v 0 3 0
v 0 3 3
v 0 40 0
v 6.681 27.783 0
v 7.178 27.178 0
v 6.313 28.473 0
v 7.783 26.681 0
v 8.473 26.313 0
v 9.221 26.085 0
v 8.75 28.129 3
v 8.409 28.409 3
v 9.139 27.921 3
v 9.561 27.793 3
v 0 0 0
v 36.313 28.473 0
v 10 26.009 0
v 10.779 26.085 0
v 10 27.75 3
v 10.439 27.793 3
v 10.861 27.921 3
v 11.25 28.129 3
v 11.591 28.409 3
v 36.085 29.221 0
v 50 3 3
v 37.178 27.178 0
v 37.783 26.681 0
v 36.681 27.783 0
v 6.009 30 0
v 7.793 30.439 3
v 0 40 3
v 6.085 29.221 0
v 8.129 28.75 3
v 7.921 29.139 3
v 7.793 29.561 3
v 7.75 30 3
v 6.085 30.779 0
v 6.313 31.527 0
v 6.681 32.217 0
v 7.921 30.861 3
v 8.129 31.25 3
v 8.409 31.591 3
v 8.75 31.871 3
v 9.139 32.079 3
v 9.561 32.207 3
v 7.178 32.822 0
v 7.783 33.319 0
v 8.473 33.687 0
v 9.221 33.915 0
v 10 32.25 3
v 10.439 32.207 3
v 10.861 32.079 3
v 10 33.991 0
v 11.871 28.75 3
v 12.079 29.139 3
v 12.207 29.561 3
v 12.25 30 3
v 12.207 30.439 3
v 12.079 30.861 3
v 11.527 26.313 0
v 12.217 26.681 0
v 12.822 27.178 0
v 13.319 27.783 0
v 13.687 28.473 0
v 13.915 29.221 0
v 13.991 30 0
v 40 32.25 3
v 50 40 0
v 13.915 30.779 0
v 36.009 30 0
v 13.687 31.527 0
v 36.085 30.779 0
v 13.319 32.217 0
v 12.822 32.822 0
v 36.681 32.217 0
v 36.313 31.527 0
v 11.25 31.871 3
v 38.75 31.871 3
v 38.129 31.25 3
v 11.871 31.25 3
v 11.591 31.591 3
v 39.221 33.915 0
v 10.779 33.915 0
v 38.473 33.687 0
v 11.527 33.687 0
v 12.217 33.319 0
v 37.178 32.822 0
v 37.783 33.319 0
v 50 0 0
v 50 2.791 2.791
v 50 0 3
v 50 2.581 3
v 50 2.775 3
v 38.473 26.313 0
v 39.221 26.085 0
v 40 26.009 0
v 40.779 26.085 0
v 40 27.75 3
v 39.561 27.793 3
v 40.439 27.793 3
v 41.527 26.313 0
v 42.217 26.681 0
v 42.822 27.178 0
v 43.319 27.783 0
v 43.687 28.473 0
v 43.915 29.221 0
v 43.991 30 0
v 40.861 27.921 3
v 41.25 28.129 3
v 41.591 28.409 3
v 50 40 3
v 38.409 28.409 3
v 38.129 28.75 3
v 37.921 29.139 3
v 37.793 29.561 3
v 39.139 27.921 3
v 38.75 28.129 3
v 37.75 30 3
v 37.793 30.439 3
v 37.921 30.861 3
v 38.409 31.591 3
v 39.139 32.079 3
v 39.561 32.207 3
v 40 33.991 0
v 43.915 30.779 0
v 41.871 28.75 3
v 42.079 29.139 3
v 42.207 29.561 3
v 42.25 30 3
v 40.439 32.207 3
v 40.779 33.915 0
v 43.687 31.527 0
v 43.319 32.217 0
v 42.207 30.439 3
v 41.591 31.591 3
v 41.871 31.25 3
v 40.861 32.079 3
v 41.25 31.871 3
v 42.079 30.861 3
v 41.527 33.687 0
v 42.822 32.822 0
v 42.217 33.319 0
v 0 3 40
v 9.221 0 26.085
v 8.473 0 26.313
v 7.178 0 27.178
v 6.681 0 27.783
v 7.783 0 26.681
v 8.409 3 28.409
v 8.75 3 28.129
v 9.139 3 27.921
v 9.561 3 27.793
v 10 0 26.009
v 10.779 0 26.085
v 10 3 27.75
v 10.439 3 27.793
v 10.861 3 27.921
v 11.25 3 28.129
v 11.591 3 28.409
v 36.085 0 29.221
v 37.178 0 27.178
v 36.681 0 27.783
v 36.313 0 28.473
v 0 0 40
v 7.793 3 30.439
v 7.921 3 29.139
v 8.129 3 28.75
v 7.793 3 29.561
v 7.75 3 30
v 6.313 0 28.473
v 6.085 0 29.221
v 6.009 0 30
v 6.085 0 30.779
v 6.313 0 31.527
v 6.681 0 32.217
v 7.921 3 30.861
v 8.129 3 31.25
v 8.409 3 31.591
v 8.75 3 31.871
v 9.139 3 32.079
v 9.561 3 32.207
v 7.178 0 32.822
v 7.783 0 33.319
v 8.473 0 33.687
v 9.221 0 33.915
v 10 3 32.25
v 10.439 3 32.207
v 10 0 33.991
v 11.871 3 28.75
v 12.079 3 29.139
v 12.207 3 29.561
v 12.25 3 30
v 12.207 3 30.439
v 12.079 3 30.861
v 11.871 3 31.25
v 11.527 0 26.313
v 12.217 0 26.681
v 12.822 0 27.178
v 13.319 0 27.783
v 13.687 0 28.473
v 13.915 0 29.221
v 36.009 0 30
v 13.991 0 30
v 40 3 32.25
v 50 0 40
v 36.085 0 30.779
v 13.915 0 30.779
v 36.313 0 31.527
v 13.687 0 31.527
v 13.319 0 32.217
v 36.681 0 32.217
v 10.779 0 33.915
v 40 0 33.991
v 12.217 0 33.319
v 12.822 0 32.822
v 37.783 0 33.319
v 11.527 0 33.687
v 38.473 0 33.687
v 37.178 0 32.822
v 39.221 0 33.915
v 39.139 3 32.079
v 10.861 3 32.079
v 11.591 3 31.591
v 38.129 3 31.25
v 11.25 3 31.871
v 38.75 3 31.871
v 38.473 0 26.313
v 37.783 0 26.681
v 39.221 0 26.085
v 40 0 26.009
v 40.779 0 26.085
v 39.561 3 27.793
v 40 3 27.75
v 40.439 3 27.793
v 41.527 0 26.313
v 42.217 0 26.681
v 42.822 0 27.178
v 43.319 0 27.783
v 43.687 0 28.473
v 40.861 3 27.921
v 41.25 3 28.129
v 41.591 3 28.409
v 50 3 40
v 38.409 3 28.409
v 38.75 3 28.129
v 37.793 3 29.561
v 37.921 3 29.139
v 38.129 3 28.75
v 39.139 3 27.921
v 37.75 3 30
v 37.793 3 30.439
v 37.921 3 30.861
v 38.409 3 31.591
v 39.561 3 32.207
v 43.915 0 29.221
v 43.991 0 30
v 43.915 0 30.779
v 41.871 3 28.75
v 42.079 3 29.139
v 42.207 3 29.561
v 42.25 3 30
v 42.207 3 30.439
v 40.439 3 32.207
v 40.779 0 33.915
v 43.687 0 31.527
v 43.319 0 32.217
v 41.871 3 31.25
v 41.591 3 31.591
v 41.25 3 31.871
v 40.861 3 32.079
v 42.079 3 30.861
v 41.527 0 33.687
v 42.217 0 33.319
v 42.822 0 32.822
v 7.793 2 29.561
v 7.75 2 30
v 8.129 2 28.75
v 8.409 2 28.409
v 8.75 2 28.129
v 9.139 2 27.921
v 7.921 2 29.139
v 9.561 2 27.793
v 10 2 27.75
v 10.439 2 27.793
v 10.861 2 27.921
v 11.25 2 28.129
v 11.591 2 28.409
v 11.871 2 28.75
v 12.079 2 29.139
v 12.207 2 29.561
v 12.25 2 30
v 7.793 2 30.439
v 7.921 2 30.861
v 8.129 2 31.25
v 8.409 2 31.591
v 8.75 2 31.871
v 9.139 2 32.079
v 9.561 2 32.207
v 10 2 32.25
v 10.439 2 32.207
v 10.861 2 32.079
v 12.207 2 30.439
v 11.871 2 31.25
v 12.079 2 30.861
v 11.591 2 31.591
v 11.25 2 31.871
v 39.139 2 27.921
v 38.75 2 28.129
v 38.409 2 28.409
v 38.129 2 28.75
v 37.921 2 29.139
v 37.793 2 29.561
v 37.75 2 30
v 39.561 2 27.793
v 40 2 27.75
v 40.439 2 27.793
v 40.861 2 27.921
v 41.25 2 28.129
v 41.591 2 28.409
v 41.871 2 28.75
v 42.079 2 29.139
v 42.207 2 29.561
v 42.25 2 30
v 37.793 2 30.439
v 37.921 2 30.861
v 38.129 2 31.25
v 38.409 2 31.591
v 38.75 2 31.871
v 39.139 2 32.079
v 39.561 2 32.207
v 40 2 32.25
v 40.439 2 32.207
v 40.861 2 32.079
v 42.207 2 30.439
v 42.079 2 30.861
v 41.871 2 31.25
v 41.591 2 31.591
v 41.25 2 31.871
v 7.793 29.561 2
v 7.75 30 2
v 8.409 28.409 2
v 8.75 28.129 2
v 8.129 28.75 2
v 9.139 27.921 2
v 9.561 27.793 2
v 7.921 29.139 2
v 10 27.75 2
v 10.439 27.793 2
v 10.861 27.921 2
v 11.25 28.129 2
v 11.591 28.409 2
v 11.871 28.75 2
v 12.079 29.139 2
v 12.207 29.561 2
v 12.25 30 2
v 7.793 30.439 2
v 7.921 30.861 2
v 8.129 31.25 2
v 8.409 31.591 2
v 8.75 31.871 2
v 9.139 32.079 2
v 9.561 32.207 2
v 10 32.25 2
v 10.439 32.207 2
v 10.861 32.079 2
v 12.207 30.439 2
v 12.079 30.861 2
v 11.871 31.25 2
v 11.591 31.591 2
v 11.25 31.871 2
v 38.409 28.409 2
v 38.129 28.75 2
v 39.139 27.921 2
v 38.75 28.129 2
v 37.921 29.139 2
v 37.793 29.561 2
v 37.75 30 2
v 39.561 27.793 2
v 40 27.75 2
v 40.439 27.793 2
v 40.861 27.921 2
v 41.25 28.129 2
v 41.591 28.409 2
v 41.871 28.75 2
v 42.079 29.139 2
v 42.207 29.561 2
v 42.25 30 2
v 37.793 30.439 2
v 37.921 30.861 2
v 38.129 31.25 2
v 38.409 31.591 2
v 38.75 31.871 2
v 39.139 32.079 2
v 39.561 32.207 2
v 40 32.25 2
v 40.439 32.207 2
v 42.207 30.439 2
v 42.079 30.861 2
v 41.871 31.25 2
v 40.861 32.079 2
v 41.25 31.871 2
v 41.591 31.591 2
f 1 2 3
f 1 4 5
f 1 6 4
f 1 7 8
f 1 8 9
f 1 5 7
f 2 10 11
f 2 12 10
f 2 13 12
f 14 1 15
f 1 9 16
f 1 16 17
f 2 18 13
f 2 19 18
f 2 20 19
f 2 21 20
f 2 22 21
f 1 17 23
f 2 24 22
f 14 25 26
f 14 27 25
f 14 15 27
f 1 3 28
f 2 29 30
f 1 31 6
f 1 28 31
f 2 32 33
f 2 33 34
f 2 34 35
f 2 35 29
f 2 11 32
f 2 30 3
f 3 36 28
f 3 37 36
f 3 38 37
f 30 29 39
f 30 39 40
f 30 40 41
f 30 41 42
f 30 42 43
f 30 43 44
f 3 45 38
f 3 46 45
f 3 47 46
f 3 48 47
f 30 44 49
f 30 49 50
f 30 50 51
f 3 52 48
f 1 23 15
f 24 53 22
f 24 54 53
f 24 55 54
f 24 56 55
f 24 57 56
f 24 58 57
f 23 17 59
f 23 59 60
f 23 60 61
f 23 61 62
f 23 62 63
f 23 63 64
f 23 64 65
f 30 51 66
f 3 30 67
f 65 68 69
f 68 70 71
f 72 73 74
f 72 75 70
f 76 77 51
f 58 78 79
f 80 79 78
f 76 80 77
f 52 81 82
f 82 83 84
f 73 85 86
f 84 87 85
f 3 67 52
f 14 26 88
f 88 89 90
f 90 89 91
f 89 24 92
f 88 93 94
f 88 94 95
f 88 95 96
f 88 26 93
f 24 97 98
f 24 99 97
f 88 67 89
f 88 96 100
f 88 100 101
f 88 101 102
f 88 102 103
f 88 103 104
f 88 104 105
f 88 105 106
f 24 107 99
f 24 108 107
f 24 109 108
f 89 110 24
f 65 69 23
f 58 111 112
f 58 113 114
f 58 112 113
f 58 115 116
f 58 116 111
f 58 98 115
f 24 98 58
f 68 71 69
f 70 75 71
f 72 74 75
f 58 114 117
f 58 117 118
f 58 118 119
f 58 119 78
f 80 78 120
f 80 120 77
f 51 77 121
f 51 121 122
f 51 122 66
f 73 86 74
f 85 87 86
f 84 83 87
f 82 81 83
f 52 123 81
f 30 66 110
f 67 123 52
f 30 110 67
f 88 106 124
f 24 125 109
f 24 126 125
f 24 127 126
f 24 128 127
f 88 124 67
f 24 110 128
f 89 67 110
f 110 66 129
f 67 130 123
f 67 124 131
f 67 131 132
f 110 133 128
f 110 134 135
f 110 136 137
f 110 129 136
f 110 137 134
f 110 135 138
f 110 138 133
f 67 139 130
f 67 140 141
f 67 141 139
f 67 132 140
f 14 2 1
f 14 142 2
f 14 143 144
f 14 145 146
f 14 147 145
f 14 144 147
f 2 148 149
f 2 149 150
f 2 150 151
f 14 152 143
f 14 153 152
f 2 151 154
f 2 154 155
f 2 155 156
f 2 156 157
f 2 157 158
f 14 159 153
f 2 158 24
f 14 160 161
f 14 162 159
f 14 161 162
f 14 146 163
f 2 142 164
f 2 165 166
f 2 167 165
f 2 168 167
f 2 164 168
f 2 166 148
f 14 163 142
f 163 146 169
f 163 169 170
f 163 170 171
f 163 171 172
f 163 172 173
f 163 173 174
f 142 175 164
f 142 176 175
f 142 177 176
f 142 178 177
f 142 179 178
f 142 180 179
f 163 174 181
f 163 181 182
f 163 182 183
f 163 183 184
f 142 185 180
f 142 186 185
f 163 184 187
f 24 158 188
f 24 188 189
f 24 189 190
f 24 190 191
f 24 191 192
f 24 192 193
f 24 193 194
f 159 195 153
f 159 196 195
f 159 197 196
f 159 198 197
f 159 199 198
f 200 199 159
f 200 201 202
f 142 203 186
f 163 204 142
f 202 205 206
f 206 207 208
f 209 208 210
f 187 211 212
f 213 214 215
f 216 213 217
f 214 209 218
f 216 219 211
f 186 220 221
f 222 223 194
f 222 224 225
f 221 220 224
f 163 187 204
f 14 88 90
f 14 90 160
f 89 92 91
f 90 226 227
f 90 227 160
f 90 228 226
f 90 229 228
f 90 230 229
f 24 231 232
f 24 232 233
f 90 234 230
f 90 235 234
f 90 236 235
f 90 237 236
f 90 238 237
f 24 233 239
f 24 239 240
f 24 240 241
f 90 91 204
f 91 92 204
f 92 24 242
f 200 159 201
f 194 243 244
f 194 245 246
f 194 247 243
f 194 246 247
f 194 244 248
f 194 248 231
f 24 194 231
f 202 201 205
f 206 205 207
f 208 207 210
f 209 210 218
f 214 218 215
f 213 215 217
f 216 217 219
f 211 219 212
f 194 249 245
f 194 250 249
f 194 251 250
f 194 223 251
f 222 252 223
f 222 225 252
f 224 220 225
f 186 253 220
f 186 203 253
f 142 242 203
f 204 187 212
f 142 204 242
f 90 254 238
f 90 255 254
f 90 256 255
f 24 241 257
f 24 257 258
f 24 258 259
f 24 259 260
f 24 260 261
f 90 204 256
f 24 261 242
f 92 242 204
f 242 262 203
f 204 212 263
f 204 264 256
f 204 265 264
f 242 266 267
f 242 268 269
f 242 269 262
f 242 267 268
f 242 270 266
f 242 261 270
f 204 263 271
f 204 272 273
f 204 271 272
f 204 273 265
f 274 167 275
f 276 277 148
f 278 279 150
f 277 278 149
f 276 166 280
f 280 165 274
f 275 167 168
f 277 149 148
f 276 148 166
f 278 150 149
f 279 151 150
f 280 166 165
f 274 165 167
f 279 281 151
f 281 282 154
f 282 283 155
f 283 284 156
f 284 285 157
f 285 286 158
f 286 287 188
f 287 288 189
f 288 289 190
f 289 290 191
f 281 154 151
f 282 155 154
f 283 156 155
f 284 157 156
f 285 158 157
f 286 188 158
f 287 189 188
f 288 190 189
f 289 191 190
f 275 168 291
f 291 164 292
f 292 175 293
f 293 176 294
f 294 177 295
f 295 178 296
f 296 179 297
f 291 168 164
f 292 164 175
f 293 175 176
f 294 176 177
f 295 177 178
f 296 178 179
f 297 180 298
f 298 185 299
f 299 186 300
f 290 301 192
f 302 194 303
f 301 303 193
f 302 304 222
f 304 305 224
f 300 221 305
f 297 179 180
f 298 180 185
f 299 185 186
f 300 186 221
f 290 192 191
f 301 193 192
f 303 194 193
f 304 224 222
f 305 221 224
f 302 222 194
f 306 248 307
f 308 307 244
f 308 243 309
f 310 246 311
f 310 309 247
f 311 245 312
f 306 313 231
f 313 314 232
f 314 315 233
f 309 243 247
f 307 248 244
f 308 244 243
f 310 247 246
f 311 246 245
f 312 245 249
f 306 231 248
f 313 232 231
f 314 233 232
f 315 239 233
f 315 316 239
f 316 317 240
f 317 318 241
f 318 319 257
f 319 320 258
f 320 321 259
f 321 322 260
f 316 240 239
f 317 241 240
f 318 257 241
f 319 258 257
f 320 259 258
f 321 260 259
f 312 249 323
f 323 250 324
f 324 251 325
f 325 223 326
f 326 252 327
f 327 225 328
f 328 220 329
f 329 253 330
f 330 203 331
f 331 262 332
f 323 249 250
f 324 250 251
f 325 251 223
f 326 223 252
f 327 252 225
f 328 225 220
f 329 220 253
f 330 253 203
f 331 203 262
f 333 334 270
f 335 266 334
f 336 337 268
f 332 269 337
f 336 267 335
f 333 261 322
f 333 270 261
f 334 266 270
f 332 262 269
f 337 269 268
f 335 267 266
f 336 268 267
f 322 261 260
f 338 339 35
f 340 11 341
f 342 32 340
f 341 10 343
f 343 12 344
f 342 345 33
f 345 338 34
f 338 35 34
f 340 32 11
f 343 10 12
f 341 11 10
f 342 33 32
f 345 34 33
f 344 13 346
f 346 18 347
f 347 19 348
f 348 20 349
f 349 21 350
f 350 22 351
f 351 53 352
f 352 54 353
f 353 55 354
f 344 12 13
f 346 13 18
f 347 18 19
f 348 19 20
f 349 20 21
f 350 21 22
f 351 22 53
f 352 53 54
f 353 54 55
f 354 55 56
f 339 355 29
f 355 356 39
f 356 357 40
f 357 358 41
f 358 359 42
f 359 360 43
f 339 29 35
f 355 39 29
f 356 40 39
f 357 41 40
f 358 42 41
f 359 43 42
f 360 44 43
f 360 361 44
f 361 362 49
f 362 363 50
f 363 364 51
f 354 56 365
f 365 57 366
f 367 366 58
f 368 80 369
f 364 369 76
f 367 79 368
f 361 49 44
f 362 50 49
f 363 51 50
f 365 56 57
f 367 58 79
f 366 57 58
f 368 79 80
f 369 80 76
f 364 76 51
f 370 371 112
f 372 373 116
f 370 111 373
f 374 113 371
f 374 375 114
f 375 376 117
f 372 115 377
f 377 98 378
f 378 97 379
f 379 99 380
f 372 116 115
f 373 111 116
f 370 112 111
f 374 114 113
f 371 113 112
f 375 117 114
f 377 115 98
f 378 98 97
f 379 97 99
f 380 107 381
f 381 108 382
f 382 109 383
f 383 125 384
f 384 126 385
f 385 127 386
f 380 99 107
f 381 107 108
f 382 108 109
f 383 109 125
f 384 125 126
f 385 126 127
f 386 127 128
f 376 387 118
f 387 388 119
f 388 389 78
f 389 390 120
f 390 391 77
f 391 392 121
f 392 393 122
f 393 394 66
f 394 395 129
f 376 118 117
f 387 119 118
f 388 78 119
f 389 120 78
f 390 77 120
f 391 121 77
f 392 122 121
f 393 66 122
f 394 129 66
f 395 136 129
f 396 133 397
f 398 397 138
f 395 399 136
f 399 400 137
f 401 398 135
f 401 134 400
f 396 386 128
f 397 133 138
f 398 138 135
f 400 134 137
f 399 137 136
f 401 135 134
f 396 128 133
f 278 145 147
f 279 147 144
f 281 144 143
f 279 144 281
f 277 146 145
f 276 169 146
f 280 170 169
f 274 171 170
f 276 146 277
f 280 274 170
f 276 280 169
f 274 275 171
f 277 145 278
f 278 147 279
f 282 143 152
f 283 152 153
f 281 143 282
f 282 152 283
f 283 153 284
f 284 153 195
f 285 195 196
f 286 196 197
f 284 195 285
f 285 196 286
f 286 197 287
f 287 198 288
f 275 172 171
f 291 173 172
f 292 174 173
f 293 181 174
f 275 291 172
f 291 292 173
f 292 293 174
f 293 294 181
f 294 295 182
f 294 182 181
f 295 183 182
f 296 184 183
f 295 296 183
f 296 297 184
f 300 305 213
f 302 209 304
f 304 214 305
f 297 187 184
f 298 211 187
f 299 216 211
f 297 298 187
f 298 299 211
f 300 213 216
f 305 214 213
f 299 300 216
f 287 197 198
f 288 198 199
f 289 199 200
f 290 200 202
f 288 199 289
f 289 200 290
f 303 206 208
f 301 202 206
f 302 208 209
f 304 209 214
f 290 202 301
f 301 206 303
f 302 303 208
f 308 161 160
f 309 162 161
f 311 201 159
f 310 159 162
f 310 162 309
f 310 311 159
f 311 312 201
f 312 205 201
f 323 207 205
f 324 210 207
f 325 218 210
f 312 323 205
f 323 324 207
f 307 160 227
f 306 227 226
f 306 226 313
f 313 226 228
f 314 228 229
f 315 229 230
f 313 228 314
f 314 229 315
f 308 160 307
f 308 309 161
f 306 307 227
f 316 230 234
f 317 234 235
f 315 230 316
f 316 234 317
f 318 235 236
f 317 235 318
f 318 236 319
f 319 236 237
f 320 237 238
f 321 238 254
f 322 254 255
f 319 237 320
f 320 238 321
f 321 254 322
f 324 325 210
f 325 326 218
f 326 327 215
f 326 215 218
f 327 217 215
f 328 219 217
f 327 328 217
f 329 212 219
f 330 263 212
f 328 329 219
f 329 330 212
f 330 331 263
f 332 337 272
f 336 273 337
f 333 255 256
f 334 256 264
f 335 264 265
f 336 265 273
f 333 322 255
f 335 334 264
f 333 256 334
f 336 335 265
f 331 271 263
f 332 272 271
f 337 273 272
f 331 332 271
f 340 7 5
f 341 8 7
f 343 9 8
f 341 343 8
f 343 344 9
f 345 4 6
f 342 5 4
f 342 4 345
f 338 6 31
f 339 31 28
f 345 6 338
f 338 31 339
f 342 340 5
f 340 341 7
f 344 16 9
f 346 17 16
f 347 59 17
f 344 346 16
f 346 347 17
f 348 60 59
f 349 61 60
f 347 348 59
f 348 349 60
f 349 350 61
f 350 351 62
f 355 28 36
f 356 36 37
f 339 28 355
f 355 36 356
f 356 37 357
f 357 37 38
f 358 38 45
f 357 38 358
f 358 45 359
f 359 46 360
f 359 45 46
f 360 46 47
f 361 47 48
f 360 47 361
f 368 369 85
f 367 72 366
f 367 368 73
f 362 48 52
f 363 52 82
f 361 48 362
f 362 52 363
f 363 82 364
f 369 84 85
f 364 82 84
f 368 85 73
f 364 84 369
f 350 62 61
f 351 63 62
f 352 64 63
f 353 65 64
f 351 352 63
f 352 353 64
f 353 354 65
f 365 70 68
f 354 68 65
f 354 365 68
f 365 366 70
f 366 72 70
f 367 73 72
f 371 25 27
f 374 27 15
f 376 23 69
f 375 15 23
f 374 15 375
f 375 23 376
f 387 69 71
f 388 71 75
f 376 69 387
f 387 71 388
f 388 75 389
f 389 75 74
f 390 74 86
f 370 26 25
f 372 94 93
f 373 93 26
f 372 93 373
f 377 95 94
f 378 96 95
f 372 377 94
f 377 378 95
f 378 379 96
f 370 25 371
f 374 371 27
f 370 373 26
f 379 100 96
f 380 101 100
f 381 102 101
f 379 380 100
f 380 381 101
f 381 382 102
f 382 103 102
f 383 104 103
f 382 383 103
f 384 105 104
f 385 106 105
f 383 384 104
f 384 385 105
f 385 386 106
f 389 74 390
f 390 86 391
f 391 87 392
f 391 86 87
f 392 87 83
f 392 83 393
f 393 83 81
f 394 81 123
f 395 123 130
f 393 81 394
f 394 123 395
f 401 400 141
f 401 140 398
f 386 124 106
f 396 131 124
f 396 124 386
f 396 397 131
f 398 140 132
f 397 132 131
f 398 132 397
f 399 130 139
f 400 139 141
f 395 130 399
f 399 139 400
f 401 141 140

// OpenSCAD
$fn = 32;

// Parameters
flange_width = 50;
flange_depth = 40;
flange_height = 40;
thickness = 3;

hole_dia = 4.5;
countersink_dia = 8;
countersink_depth = 2;
edge_offset = 10;

module countersunk_hole() {
    cylinder(d=hole_dia, h=thickness+1);
    translate([0, 0, thickness - countersink_depth])
        cylinder(d1=hole_dia, d2=countersink_dia, h=countersink_depth + 0.01);
}

difference() {
    union() {
        // Horizontal flange (+Y direction)
        translate([0, 0, 0])
            cube([flange_width, flange_depth, thickness]);
        
        // Vertical flange (+Z direction)
        translate([0, 0, 0])
            cube([flange_width, thickness, flange_height]);
    }
    
    // Holes in horizontal flange (countersink on bottom, -Z side)
    for (x = [edge_offset, flange_width - edge_offset]) {
        translate([x, flange_depth - edge_offset, thickness])
            rotate([180, 0, 0])
                countersunk_hole();
    }
    
    // Holes in vertical flange (countersink on front, -Y side)
    for (x = [edge_offset, flange_width - edge_offset]) {
        translate([x, thickness, flange_height - edge_offset])
            rotate([90, 0, 0])
                countersunk_hole();
    }
}
